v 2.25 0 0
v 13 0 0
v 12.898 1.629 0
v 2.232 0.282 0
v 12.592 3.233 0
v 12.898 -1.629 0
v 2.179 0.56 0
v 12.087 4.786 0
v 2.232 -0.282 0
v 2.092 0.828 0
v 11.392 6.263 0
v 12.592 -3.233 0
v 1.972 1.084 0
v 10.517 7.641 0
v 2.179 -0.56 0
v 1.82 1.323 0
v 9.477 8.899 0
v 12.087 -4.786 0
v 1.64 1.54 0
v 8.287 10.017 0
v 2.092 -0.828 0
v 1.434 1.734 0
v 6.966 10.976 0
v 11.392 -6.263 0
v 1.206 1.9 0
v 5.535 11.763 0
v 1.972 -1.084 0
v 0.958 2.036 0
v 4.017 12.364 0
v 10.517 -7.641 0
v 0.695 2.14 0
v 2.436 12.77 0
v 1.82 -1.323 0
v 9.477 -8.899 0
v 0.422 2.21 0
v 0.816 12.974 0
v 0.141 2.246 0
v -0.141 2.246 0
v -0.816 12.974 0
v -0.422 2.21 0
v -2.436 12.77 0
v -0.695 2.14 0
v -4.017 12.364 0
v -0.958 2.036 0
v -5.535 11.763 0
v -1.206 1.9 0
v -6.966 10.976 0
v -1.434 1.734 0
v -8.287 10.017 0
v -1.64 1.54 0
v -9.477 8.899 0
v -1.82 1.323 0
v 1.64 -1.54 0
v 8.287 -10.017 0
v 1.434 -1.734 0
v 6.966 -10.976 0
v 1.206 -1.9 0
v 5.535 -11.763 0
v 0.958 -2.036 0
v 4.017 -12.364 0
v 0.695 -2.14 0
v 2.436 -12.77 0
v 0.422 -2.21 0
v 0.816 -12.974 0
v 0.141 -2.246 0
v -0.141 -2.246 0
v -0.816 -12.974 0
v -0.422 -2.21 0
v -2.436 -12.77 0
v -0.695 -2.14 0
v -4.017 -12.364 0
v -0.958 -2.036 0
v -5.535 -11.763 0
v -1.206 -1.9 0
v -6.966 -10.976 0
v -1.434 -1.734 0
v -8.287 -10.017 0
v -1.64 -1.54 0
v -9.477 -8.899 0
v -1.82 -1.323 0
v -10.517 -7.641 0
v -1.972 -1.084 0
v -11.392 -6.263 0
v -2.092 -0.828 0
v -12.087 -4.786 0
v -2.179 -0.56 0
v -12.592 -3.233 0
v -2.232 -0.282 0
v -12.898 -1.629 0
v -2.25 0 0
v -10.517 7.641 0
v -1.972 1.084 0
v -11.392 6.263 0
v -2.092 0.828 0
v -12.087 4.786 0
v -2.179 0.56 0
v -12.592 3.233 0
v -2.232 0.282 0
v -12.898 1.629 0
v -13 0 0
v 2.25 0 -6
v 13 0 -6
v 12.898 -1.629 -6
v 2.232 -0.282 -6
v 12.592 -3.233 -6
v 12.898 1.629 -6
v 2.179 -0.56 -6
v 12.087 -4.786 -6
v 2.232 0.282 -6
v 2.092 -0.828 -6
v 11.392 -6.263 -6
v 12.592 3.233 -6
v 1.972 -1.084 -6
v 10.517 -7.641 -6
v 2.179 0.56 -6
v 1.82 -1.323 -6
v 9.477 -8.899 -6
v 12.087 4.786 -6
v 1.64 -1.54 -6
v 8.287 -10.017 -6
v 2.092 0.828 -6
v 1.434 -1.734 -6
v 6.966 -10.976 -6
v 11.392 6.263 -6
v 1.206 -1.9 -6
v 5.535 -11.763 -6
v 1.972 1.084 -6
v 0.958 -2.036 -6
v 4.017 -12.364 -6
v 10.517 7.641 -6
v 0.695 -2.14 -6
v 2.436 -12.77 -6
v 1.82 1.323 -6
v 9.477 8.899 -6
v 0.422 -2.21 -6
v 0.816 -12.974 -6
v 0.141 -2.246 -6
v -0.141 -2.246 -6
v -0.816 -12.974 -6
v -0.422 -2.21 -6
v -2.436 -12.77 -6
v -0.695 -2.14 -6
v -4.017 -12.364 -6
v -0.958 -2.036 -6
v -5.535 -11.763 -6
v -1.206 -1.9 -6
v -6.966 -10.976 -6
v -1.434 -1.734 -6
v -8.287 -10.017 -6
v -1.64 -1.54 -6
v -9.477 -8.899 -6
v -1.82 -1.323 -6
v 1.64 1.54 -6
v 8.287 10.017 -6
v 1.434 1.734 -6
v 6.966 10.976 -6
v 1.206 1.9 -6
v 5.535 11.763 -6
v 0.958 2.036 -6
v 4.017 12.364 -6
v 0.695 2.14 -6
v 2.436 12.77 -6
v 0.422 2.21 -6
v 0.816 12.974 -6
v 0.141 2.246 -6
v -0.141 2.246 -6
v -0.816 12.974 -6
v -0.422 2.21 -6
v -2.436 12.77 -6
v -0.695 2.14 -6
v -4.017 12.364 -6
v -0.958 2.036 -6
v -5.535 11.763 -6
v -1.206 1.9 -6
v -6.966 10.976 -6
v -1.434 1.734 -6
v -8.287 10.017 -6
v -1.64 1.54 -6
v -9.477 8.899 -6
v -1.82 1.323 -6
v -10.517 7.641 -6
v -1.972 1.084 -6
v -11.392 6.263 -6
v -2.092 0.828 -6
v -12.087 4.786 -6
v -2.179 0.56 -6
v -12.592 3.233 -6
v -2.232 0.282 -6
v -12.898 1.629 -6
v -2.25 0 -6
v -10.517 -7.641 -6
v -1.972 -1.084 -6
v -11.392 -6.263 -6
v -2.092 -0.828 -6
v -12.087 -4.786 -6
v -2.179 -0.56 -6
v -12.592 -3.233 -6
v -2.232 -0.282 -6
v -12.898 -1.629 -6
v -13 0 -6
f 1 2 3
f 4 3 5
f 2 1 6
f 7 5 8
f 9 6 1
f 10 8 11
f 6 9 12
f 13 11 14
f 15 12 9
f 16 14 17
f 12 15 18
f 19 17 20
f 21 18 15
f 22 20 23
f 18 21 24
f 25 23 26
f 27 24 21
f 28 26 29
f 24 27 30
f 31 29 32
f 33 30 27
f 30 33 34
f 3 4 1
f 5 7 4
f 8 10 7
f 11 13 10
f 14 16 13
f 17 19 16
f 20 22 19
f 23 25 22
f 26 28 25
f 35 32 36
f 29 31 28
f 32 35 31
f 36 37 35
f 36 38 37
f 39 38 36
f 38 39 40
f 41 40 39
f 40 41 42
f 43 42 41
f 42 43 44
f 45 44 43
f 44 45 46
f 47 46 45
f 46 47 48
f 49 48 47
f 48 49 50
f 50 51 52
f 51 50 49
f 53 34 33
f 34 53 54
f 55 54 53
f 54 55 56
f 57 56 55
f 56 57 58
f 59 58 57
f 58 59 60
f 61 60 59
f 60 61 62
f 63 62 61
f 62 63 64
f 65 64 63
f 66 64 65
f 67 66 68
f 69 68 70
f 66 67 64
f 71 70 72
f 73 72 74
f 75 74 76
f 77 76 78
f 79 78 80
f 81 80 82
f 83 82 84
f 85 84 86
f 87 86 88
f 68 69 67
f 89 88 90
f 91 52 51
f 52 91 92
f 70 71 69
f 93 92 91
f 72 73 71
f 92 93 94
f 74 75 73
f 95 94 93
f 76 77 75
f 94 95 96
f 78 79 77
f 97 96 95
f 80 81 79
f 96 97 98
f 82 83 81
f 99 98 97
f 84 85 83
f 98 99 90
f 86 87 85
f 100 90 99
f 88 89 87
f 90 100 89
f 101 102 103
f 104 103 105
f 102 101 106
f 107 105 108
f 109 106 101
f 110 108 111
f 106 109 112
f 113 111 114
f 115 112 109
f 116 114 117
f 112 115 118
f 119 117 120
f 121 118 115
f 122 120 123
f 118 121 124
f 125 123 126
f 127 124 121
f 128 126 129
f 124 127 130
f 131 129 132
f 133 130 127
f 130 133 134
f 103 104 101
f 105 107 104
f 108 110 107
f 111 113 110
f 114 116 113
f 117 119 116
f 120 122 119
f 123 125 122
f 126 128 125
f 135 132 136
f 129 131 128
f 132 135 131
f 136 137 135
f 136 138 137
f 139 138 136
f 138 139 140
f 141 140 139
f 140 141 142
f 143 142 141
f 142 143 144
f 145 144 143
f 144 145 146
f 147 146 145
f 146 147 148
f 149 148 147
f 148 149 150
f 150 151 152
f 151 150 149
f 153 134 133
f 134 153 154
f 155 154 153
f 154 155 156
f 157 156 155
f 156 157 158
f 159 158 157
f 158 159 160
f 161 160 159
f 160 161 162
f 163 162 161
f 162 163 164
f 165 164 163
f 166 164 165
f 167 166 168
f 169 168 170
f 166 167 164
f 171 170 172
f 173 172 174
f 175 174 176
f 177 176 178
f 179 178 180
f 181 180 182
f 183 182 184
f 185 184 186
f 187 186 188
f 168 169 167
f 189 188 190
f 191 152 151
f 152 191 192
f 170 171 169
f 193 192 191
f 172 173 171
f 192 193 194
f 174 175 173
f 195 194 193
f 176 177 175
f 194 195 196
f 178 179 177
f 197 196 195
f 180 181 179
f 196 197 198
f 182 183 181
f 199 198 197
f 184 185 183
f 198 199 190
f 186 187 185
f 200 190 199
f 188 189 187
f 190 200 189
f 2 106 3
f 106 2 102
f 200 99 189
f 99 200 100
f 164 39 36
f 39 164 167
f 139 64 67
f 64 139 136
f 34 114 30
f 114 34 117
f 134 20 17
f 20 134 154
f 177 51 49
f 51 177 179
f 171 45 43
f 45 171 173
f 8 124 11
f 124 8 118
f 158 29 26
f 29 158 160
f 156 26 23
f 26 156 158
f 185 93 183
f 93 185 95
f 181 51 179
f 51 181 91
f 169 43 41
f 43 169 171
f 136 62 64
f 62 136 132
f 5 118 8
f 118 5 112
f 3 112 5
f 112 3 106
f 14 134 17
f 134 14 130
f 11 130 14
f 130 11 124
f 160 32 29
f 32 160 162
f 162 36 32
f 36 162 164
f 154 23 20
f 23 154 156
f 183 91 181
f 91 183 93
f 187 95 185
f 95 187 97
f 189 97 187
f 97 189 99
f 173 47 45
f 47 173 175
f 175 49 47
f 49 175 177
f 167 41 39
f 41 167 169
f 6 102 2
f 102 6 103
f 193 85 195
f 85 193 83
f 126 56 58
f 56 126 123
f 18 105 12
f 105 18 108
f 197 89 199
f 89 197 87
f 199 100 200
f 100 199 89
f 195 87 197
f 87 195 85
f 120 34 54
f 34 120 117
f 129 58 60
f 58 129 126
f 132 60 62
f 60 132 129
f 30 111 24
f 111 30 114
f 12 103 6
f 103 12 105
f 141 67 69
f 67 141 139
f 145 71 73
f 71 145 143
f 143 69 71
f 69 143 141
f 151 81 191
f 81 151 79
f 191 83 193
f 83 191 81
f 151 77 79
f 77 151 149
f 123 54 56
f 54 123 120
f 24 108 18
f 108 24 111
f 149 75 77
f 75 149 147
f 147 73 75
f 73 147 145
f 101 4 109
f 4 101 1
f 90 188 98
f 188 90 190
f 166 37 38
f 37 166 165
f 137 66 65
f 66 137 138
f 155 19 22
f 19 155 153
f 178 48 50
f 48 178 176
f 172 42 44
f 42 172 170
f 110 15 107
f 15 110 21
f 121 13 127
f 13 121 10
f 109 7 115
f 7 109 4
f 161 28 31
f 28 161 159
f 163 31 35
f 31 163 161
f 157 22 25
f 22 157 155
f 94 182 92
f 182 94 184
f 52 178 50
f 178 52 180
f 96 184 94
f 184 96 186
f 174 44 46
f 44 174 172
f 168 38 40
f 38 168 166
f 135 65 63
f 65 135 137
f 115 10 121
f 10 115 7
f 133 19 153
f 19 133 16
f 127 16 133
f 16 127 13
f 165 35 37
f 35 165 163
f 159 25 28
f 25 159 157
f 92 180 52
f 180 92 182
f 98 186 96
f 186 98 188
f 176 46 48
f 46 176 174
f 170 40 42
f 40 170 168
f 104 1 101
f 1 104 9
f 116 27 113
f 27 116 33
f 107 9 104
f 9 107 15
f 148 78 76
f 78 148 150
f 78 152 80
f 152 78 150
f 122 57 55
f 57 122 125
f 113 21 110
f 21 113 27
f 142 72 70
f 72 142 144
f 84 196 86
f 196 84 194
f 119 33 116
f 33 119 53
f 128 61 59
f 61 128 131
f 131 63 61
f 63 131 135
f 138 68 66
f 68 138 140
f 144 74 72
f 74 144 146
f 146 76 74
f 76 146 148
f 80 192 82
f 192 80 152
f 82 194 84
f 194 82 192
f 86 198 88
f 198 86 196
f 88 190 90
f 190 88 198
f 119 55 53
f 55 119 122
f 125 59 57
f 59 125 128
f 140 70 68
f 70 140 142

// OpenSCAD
$fn = 50;


difference() {
	union() {
		translate(v = [0, 0, -6.0000000000]) {
			cylinder(h = 6, r = 10.0000000000);
		}
		translate(v = [0, 0, -6.0000000000]) {
			cylinder(h = 6, r = 13.0000000000);
		}
	}
	union() {
		#translate(v = [0, 0, -6]) {
			cylinder(h = 6, r = 2.2500000000);
		}
	}
}
